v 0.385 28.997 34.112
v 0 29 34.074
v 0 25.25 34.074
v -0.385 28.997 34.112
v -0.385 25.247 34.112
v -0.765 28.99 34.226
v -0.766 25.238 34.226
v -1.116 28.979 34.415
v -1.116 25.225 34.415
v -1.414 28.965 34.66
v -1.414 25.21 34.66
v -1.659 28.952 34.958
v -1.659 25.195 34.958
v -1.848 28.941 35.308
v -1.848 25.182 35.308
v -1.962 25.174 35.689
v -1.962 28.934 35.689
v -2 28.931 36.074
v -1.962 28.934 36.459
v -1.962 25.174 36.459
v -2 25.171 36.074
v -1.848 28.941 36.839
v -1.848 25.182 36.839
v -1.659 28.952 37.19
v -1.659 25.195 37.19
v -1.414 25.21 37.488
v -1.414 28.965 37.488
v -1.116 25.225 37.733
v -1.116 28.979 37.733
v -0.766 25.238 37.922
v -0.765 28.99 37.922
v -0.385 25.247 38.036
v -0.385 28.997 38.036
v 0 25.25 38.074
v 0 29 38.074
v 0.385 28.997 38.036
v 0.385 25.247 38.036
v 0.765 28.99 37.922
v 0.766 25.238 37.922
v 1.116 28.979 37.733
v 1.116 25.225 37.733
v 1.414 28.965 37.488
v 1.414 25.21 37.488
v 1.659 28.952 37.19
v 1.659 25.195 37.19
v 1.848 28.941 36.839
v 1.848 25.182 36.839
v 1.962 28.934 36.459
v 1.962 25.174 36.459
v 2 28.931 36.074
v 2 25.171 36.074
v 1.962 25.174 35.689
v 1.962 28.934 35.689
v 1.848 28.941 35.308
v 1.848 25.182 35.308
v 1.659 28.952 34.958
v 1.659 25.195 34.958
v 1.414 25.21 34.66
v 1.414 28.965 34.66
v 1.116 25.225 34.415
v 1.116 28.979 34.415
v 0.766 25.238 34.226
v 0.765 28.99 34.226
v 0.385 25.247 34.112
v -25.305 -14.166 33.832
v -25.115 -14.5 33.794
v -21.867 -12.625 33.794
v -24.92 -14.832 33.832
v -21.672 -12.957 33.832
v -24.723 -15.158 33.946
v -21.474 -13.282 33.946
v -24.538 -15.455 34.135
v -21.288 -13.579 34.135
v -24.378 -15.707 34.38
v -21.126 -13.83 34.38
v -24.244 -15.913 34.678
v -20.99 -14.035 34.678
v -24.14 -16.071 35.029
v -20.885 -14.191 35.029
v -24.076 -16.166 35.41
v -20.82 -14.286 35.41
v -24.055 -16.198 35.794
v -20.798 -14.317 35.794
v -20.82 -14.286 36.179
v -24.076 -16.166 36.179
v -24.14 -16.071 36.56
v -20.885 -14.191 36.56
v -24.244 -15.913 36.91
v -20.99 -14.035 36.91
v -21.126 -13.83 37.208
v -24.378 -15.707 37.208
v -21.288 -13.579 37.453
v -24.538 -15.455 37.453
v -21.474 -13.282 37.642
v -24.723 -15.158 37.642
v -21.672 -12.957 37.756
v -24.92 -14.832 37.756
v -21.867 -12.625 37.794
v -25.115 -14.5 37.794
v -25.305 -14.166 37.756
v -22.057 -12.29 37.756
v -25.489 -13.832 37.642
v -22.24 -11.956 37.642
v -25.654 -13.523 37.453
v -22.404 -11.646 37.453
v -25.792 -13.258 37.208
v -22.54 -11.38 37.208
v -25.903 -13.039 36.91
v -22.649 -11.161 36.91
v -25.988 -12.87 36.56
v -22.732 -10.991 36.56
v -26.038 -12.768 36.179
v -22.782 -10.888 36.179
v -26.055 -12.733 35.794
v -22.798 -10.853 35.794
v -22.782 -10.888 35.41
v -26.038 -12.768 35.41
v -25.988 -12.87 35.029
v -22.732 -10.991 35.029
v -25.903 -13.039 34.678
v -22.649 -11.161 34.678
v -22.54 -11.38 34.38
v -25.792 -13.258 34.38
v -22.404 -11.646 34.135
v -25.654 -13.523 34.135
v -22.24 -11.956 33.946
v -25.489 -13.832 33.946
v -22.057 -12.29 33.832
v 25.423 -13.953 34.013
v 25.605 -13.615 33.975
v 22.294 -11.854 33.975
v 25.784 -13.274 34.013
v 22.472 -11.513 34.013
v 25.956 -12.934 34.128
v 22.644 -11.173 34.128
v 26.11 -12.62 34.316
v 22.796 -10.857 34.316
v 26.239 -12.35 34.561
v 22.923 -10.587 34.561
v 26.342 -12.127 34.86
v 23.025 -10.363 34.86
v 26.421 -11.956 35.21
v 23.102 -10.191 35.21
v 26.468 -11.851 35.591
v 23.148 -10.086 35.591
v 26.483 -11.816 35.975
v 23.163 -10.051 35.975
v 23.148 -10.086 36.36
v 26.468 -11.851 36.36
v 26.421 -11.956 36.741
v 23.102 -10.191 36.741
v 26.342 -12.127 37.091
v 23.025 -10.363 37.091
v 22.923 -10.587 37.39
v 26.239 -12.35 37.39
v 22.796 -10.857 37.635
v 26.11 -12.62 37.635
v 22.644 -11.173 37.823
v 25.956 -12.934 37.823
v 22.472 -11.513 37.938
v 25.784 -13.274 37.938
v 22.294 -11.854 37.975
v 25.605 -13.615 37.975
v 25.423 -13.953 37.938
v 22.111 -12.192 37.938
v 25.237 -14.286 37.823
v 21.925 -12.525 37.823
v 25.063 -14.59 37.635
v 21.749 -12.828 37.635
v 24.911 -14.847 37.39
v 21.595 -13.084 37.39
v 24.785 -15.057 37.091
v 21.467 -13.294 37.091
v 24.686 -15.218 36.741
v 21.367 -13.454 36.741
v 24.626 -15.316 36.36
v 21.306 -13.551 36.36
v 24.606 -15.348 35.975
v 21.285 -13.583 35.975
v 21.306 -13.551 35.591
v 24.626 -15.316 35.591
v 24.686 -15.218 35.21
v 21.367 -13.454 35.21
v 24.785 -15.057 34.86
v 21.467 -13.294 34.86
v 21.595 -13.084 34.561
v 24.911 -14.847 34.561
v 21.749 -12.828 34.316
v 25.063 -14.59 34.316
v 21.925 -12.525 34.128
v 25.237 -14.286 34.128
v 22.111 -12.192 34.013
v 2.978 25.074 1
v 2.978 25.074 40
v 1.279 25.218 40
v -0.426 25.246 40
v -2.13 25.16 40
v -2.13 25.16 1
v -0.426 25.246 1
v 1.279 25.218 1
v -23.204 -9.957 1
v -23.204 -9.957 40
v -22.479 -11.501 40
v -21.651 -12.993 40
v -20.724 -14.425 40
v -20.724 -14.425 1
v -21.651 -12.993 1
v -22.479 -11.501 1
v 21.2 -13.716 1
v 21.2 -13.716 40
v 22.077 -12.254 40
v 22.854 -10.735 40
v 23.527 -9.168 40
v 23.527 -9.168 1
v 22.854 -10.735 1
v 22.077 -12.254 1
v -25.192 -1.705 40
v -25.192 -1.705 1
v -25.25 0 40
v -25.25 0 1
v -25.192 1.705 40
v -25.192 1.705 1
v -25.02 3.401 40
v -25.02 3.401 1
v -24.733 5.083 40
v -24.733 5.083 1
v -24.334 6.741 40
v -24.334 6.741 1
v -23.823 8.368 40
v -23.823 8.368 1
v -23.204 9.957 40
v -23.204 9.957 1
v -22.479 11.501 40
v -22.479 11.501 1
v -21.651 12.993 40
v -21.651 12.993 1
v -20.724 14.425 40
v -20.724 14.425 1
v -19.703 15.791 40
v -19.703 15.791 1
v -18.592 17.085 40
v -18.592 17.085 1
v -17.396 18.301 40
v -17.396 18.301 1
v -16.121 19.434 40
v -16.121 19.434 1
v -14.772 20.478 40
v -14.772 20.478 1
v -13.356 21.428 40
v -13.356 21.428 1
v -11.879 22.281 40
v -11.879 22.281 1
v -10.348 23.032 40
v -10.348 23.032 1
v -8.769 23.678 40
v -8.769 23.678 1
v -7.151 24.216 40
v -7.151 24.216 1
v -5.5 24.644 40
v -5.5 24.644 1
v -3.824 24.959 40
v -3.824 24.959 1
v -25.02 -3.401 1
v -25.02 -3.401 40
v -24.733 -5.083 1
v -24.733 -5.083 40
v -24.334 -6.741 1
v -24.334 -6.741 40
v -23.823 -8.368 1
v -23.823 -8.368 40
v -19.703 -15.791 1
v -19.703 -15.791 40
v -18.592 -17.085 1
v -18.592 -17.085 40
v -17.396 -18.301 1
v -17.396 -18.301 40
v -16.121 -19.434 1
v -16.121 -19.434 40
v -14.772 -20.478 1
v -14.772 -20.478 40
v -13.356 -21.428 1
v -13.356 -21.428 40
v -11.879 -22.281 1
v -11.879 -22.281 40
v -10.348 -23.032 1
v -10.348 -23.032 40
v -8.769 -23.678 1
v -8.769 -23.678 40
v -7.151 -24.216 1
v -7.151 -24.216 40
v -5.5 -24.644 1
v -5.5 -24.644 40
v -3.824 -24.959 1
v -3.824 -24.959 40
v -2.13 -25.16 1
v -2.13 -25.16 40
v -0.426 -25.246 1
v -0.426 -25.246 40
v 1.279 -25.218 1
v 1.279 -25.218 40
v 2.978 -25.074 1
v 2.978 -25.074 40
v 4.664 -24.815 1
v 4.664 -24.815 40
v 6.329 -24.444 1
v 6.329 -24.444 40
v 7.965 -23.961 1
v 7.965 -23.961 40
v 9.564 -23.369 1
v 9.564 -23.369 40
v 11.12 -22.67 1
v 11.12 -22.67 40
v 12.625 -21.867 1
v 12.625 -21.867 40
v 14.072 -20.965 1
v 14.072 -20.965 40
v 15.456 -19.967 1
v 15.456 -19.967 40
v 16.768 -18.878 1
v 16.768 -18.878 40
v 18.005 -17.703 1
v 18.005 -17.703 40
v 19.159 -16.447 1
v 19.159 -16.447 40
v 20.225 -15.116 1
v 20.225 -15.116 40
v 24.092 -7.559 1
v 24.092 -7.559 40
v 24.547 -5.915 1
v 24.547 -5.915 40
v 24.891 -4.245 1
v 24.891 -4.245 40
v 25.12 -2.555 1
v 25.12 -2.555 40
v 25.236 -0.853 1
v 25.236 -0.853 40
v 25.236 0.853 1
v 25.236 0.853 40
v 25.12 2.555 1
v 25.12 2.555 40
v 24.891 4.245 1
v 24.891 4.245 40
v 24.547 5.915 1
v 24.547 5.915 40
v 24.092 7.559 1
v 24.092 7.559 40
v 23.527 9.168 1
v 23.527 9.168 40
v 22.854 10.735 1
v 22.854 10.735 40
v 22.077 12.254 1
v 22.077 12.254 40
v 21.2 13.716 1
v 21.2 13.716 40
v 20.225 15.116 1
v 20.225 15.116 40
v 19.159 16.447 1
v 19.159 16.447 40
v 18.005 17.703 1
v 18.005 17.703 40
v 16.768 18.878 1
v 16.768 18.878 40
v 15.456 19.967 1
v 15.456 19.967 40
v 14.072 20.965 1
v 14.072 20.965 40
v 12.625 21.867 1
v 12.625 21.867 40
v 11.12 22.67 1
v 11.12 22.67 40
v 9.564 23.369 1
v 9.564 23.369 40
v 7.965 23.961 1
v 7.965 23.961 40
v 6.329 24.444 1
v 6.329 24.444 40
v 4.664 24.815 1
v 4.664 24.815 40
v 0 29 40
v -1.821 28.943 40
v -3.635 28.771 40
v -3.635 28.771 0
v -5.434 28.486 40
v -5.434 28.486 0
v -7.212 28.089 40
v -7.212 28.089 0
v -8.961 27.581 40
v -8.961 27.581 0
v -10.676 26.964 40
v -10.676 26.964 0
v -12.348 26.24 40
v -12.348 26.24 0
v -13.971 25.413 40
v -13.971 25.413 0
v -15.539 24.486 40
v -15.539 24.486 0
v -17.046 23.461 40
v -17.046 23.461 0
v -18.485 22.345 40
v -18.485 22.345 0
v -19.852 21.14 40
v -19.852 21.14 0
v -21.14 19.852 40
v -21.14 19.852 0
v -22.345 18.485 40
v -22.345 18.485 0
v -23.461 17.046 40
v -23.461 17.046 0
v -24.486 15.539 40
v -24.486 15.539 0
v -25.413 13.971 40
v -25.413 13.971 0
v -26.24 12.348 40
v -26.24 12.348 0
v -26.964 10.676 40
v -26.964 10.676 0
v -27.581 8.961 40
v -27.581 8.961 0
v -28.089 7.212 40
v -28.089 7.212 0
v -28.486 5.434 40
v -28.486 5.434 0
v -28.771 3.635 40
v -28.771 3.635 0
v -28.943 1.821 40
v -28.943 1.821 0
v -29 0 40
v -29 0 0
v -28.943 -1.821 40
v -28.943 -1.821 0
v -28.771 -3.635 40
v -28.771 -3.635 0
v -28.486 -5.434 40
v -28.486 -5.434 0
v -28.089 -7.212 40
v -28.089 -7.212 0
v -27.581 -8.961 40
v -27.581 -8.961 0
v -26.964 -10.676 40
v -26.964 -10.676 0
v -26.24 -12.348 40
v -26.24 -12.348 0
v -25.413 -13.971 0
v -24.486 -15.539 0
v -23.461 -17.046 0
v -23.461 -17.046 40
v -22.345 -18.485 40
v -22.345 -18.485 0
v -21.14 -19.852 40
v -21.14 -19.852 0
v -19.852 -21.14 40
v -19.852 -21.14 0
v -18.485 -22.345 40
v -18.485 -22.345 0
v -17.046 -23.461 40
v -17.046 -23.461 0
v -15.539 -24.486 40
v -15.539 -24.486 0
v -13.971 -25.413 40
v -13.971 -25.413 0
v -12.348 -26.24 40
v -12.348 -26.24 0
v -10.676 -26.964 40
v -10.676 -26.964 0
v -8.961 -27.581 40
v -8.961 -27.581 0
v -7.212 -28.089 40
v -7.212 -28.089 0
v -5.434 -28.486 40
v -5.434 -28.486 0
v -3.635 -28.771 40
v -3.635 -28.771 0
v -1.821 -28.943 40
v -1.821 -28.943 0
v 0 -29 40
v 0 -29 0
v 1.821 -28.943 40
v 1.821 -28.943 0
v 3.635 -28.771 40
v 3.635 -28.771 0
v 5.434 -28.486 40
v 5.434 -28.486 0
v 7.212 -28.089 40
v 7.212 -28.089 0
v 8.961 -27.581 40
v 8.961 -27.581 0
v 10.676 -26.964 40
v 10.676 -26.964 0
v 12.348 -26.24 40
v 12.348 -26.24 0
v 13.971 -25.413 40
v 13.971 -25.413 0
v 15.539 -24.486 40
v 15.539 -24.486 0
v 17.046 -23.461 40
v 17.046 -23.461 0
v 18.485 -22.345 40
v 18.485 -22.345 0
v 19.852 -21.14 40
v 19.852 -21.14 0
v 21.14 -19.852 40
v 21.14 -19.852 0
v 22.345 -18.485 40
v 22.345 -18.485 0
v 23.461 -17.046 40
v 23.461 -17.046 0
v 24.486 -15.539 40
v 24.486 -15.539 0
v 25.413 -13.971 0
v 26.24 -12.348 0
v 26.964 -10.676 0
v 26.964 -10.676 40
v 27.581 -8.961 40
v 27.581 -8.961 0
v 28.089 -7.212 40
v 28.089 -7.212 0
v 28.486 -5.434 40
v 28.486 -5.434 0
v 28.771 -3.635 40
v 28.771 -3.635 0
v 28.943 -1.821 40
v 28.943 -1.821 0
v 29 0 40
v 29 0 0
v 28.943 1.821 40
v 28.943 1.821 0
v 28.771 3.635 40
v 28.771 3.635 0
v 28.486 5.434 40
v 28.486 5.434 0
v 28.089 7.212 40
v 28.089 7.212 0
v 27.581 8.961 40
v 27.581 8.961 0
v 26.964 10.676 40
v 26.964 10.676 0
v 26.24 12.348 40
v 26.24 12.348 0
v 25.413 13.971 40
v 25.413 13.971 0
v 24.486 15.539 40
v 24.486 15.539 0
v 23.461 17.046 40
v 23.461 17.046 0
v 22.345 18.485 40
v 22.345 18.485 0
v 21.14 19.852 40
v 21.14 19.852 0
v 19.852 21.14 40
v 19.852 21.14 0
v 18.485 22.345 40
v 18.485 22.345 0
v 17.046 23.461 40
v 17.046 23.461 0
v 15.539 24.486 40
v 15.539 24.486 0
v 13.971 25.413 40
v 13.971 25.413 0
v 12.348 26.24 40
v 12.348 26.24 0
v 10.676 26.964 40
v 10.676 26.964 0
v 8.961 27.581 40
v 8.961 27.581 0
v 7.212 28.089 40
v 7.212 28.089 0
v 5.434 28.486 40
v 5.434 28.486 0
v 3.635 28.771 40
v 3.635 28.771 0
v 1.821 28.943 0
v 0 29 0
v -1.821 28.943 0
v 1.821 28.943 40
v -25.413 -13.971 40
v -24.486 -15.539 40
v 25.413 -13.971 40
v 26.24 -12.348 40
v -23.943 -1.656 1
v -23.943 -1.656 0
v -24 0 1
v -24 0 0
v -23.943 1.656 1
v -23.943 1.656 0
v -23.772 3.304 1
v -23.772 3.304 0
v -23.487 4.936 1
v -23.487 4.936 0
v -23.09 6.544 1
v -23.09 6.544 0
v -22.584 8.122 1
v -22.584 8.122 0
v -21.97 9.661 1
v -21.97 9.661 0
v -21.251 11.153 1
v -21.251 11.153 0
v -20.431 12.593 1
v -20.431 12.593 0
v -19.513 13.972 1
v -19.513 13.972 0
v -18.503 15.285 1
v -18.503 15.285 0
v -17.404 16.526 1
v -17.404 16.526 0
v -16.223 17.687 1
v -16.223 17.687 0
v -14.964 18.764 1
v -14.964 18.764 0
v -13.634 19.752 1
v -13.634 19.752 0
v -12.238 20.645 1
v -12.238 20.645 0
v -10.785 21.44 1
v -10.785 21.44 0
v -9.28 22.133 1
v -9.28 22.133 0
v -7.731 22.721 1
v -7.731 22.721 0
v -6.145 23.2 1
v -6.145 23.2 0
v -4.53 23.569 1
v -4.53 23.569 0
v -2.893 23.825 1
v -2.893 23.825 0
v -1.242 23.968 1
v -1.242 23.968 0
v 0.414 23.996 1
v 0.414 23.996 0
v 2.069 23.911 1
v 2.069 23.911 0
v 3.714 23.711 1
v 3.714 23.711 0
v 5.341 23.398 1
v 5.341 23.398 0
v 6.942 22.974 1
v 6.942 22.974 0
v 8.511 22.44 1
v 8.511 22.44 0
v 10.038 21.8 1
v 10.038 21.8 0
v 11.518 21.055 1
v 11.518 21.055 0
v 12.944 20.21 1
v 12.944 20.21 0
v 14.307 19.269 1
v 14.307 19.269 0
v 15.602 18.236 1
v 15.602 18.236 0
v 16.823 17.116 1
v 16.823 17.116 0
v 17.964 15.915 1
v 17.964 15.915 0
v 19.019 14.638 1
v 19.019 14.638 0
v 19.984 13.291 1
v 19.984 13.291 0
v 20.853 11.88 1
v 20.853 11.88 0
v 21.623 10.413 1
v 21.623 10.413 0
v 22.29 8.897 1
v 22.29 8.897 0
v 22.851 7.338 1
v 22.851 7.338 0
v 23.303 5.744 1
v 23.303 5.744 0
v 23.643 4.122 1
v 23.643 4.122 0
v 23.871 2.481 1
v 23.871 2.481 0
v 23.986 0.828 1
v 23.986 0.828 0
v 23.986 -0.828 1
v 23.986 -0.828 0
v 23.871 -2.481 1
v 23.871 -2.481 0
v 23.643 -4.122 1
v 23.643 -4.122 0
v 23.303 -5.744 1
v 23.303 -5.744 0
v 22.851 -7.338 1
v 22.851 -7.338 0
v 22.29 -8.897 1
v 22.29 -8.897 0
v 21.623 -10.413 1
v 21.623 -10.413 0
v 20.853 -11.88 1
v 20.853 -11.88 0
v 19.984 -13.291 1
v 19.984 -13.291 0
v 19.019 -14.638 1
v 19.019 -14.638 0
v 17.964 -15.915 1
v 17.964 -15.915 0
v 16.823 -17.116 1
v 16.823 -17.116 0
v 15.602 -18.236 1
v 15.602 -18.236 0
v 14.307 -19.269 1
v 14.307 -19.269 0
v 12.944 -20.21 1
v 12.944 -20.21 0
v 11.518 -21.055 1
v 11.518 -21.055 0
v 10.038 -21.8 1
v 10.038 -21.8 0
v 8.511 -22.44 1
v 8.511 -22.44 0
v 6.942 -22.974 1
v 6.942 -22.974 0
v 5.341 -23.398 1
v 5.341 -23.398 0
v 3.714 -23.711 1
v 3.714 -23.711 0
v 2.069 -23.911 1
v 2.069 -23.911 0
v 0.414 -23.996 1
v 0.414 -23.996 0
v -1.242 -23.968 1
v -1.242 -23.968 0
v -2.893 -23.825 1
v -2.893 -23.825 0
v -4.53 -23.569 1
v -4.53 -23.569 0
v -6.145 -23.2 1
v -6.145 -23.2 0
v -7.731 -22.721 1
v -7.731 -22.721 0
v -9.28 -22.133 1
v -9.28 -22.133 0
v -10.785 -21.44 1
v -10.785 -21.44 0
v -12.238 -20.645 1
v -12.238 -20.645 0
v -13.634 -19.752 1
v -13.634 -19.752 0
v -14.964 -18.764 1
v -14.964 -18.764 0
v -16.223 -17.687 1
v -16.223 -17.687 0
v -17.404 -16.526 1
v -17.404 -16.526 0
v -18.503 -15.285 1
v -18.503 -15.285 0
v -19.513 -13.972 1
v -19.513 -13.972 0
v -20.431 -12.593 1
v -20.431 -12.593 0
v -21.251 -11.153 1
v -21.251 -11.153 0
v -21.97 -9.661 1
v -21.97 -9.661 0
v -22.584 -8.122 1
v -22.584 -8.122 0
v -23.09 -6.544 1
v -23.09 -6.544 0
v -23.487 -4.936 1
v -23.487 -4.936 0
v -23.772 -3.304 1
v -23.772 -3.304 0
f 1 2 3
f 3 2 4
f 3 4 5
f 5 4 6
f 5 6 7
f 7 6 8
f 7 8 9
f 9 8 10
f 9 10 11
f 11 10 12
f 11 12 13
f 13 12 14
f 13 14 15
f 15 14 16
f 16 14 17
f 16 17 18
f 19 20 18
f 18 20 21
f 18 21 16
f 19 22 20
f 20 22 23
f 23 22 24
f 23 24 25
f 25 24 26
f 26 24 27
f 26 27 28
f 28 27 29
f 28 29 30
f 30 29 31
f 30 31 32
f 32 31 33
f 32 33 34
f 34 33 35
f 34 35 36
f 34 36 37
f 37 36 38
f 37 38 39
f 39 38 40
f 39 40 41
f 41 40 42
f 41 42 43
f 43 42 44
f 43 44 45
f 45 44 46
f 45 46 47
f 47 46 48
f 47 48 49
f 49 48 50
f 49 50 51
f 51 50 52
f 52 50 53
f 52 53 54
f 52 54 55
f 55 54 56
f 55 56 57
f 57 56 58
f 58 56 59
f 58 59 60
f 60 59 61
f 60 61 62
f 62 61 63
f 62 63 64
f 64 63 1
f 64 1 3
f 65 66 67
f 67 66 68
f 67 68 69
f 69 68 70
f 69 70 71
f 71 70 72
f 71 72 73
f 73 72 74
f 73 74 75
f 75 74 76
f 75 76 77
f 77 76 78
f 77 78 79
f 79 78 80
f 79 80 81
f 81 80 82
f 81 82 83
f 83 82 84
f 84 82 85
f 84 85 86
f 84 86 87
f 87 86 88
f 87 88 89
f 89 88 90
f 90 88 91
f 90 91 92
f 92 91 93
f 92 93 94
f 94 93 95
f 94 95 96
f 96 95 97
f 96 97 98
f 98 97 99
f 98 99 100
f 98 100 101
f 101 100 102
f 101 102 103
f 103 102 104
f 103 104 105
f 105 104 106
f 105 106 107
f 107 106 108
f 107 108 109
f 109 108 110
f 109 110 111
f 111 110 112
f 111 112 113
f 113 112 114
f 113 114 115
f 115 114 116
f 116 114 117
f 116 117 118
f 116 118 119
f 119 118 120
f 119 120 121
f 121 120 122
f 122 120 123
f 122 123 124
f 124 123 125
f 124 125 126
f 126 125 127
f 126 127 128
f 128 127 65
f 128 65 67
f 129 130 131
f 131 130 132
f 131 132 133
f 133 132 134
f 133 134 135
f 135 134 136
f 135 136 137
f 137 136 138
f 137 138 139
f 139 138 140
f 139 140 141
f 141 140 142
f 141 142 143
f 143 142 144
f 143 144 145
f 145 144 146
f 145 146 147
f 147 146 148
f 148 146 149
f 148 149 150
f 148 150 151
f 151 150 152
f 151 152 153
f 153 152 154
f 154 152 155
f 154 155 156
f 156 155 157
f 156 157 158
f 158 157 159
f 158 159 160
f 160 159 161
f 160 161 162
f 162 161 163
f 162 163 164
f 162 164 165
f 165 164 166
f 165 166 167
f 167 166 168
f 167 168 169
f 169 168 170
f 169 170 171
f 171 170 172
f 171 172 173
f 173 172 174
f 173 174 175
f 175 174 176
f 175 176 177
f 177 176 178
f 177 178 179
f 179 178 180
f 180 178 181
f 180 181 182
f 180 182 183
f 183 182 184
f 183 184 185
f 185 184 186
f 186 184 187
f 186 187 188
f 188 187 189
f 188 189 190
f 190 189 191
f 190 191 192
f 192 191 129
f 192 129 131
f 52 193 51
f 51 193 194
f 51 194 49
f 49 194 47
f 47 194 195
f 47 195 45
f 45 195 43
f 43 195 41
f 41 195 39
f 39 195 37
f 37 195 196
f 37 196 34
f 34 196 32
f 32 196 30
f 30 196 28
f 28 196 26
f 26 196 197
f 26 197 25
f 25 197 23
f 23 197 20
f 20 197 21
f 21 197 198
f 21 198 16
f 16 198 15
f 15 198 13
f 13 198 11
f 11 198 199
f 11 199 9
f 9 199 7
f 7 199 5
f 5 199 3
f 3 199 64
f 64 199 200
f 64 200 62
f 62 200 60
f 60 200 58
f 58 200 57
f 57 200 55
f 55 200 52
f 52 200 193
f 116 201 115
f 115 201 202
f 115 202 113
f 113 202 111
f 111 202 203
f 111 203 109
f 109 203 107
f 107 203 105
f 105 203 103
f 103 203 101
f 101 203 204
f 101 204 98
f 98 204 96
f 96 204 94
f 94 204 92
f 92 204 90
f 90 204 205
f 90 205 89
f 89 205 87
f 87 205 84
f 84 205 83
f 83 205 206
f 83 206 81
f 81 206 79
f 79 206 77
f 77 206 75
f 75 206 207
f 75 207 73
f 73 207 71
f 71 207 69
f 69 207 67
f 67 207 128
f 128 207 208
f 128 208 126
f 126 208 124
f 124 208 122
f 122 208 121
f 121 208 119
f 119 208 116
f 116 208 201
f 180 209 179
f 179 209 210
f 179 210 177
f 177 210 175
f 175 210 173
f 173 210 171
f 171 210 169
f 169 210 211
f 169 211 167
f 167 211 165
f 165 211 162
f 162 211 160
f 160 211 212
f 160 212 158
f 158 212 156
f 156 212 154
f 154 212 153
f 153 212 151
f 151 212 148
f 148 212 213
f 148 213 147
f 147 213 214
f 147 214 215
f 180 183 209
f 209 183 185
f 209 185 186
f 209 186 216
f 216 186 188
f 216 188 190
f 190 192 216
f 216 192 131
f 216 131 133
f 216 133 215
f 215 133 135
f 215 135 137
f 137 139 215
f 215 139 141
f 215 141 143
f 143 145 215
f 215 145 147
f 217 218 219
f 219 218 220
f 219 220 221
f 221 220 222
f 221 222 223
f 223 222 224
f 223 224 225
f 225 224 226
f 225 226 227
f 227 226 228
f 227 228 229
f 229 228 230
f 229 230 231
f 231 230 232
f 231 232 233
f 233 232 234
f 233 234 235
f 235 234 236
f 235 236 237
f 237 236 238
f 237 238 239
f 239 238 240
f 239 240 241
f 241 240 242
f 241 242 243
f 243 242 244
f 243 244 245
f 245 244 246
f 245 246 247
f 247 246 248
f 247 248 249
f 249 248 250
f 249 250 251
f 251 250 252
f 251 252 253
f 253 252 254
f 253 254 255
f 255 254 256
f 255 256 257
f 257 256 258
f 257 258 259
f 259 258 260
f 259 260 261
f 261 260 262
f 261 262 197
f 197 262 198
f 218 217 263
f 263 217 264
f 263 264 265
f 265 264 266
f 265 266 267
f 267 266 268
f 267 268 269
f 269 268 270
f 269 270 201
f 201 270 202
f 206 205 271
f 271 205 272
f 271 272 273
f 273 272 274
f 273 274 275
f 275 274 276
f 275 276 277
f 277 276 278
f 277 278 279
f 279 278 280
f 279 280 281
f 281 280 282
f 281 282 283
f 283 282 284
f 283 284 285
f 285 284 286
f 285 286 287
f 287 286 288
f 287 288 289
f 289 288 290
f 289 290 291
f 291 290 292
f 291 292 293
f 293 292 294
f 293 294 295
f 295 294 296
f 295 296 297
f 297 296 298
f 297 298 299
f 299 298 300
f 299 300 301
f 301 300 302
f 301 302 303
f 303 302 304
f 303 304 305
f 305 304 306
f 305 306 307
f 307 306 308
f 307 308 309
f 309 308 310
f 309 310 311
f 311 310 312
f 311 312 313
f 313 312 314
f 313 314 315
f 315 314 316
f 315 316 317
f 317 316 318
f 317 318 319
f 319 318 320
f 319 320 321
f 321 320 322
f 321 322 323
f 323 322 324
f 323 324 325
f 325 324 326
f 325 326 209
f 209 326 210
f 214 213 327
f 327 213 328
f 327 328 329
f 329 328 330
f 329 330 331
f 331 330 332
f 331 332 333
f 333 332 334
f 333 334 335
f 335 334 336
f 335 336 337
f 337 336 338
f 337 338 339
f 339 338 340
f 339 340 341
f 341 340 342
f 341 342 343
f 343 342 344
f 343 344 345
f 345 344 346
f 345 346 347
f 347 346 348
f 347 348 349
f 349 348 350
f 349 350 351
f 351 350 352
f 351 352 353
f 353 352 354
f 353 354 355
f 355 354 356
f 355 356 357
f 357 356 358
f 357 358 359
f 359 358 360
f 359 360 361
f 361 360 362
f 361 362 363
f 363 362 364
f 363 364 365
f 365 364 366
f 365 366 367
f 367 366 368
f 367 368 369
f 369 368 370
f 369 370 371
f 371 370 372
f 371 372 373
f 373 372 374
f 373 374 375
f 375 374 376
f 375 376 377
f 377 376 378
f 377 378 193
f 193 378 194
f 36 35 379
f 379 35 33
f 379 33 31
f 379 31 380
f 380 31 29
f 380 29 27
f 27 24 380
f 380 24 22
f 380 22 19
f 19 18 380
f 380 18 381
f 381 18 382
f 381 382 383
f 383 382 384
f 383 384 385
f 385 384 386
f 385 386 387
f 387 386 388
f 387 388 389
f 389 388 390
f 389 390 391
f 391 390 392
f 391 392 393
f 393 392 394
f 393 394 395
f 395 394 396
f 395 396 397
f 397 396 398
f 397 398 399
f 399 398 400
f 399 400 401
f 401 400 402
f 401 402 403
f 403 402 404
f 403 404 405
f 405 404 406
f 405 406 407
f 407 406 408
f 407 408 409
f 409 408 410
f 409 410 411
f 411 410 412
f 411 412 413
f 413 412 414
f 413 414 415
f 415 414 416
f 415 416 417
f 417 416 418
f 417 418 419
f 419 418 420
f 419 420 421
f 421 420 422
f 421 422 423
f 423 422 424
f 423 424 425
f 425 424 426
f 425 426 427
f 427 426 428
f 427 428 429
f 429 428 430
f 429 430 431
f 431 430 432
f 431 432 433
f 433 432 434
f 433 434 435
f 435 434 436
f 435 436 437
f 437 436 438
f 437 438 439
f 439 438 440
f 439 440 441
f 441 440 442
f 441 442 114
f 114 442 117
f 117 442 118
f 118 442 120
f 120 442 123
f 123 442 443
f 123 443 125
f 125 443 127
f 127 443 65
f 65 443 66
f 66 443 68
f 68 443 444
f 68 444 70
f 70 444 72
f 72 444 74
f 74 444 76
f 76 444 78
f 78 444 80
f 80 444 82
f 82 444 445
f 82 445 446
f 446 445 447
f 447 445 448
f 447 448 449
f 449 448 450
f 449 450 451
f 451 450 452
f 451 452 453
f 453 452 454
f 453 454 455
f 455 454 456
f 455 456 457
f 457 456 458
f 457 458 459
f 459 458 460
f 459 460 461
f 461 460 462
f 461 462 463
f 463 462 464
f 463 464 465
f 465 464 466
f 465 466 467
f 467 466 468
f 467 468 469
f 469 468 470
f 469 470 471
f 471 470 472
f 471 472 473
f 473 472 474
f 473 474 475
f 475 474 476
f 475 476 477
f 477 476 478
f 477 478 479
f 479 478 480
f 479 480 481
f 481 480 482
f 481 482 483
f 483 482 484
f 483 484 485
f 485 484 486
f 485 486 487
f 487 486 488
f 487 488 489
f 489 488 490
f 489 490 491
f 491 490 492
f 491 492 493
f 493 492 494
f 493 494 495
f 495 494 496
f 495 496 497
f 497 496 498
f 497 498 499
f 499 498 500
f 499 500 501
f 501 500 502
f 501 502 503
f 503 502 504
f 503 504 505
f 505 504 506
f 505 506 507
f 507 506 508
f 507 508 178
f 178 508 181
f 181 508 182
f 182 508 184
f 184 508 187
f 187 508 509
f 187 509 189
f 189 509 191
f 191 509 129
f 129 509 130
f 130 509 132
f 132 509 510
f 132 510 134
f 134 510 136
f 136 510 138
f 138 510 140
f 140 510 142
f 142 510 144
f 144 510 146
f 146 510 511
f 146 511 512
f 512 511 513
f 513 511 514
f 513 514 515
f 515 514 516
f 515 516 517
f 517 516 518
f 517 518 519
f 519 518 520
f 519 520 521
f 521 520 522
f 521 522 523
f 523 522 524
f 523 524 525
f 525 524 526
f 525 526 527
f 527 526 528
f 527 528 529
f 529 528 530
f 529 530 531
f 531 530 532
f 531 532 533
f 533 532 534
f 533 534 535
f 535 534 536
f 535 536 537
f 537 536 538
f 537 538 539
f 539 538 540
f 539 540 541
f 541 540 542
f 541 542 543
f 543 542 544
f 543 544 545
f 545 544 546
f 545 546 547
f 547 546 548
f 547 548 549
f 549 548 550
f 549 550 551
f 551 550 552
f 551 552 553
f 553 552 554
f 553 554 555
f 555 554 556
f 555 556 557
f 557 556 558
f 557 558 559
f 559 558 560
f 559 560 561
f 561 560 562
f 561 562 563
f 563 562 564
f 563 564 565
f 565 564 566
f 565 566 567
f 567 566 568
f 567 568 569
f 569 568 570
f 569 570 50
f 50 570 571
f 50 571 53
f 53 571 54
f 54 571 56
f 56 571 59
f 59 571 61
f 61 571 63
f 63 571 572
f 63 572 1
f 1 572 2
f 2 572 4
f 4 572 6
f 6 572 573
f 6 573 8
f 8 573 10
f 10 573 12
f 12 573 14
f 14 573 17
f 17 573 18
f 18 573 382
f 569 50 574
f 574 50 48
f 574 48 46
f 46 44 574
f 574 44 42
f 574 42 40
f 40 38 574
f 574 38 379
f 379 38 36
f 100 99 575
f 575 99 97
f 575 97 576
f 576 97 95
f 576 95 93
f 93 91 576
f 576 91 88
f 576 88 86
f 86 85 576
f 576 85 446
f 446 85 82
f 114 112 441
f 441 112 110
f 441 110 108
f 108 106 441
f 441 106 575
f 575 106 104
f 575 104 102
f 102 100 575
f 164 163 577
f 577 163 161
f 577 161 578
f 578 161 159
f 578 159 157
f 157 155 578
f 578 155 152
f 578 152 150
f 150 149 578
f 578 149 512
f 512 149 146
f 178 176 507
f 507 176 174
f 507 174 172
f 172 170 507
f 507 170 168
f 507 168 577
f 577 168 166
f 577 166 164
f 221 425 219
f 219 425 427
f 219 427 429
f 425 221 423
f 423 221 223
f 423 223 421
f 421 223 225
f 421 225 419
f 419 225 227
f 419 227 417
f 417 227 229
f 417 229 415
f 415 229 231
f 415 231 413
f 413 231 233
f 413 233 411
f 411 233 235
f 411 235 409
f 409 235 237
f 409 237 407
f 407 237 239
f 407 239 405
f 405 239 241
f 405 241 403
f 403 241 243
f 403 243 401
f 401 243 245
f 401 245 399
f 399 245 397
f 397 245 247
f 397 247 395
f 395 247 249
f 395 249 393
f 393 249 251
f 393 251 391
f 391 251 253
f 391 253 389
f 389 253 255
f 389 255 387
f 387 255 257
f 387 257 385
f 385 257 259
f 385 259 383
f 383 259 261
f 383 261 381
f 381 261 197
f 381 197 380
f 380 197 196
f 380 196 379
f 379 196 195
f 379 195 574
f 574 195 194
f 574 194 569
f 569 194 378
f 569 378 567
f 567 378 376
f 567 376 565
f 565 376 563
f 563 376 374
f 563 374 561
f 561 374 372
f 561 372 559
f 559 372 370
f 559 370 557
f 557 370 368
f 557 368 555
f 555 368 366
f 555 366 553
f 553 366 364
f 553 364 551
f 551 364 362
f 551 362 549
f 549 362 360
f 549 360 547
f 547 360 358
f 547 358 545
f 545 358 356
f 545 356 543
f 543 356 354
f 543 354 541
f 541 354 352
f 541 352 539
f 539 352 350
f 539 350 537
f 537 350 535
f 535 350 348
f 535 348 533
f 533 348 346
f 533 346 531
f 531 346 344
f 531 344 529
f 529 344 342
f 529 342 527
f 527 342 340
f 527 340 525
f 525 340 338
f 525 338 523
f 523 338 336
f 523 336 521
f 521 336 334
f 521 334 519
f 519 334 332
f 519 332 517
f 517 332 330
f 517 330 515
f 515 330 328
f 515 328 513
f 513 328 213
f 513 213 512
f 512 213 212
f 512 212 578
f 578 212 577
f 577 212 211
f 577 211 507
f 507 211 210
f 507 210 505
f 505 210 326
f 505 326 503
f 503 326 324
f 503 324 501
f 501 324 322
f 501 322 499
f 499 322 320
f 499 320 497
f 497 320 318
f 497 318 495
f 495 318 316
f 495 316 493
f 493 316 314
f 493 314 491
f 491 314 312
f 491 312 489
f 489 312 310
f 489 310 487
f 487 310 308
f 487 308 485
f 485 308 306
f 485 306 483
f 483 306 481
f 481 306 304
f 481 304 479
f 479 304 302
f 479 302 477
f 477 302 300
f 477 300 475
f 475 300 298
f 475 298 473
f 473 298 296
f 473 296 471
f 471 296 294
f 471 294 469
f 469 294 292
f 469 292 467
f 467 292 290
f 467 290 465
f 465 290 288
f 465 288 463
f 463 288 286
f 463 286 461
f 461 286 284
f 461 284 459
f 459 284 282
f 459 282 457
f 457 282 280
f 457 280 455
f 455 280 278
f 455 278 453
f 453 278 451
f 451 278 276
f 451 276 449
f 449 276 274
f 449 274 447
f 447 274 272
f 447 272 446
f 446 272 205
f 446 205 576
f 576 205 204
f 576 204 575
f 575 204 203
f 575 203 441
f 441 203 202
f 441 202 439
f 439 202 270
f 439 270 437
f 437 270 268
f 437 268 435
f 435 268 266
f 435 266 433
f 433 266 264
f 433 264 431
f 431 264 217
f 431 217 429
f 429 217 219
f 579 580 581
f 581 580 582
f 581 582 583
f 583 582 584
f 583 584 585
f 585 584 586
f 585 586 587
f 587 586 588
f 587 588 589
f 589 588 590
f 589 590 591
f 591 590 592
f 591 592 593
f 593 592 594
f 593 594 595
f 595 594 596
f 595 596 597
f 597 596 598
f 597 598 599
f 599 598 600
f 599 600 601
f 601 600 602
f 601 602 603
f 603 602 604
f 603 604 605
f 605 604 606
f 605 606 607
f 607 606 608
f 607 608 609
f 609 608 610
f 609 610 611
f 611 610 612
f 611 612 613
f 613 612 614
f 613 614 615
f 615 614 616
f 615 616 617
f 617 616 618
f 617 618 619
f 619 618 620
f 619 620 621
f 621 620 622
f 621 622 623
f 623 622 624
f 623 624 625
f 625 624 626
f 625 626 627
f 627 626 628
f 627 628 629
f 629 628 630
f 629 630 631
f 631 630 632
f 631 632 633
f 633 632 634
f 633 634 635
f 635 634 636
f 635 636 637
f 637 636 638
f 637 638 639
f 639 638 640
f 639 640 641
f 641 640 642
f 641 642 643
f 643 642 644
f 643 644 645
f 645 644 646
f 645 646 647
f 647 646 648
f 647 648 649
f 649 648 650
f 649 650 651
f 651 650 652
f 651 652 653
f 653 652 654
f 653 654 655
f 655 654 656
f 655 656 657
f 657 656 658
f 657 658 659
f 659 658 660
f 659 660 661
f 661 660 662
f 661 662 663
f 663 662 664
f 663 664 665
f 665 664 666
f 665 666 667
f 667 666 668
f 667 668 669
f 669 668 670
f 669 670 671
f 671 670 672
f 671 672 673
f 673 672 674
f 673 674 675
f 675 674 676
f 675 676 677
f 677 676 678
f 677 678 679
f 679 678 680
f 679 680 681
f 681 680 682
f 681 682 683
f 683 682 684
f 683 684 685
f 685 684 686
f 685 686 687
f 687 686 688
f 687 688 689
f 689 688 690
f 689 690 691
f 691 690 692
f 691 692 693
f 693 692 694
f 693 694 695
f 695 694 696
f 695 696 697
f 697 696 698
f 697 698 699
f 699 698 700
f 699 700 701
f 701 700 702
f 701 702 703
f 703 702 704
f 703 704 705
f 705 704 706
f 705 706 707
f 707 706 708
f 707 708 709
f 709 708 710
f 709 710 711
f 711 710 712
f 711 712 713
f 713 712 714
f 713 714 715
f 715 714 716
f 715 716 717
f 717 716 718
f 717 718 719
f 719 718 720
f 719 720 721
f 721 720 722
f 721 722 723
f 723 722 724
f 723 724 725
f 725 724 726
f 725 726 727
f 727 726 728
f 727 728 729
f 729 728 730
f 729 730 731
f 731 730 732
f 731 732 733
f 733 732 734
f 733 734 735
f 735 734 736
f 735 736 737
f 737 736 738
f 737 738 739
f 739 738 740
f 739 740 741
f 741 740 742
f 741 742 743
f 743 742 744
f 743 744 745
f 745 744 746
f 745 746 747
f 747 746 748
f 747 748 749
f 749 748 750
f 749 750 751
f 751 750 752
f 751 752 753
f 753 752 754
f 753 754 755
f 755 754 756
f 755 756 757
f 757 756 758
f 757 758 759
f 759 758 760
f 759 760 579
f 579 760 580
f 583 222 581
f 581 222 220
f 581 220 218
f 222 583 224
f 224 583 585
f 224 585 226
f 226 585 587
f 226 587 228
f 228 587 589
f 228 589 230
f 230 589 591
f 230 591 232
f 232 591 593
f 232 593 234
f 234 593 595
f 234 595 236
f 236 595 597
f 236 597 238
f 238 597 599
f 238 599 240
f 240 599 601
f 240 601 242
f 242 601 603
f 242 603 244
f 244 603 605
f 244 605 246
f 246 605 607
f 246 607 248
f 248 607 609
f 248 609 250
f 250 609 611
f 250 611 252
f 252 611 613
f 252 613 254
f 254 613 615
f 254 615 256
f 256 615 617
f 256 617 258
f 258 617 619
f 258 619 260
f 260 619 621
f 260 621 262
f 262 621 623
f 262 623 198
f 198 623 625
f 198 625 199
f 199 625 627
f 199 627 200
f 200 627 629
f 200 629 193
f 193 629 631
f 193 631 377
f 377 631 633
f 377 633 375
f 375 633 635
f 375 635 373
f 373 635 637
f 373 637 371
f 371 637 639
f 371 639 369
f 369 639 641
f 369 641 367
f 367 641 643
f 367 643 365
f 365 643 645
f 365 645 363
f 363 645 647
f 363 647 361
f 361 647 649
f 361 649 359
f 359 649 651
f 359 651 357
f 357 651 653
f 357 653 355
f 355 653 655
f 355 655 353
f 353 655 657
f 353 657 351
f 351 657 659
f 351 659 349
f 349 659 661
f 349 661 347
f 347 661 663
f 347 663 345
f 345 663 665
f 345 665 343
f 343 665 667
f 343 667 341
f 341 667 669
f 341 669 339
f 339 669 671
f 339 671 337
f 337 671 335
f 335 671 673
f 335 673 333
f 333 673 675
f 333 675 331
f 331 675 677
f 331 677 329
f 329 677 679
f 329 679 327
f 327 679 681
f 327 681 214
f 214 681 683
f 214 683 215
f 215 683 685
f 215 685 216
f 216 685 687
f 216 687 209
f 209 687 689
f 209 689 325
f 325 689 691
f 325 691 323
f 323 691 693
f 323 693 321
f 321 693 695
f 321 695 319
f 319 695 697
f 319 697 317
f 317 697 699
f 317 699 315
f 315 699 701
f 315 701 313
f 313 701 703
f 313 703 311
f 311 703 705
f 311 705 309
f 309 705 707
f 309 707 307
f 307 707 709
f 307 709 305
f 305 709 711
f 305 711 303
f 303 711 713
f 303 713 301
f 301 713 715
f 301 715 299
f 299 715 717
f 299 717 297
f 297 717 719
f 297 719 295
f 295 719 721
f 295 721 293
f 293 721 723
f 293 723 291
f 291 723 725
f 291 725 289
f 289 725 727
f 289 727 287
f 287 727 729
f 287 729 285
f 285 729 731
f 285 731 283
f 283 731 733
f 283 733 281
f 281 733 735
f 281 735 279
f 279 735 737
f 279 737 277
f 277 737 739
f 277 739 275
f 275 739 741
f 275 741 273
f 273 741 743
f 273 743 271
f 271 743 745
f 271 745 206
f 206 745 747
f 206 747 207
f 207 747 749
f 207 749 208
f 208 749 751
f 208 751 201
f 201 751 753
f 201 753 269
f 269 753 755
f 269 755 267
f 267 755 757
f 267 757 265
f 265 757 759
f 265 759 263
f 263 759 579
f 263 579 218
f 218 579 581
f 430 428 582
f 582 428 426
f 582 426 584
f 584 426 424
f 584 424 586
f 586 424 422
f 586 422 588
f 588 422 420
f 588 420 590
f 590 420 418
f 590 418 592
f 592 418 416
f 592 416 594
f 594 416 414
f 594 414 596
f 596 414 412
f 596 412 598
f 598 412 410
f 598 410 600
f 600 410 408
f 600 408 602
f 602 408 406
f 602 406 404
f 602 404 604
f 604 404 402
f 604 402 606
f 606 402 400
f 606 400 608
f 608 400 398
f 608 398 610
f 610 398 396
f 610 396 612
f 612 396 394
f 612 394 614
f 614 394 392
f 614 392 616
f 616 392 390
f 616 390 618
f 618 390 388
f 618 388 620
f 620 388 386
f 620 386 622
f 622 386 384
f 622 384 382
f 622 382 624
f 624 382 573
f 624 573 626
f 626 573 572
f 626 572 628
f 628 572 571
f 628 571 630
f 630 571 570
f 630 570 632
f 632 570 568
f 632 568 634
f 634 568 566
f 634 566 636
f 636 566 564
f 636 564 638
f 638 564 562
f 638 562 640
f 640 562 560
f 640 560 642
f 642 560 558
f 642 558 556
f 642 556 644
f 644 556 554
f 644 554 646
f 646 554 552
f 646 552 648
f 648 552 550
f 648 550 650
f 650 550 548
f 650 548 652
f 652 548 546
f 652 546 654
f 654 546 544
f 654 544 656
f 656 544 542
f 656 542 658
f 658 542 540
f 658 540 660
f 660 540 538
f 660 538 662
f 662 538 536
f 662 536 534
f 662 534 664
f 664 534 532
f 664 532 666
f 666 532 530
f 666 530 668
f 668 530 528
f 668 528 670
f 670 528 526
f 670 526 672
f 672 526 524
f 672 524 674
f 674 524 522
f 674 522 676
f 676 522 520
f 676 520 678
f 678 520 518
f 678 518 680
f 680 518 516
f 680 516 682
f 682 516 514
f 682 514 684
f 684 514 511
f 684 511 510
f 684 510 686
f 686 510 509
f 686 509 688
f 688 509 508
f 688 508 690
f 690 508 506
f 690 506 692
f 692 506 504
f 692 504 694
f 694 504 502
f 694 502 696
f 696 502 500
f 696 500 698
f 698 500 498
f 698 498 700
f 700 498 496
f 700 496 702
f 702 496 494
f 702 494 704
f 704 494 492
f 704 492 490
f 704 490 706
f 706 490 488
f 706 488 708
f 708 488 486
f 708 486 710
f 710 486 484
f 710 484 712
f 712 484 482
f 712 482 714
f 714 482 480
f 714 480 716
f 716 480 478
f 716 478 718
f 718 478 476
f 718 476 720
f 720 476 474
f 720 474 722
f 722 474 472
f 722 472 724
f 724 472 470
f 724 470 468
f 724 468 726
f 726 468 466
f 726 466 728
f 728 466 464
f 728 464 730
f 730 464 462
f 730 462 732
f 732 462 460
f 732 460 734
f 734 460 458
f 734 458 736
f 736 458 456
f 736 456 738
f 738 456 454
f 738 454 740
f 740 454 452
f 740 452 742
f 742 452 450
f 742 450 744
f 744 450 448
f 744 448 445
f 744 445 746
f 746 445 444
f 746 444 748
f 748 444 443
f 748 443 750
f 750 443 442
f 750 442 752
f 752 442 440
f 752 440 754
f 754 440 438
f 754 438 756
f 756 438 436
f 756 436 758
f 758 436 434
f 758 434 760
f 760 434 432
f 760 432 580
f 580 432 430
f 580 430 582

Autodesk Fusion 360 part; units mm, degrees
sketch "Adapter Sketch" plane through (0, 0, 0) normal (0, 0, 1) x (1, 0, 0)
  circle A0 centre (0, 0) radius 25.25
  circle A1 centre (0, 0) radius 29
  circle A2 centre (0, 0) radius 24
  line L0 (25.0221, -14.4721) -> (0.0222, 28.9059)
  line L1 (0.0222, 28.9059) -> (-25.0443, -14.4337)
  line L2 (-25.0443, -14.4337) -> (25.0221, -14.4721)
  dimension "d1" = 50.5
  dimension "d2" = 58
  dimension "d3" = 48
extrude "Extrude1" add sketch "Adapter Sketch" along normal blind 1 contours A0 A2 L0 | A0 A2 L0 L1 | A0 A2 L0 L2 | A0 A2 L1 | A0 A2 L2 | A0 A2 L1 L2
extrude "Extrude2" add sketch "Adapter Sketch" along normal blind 40 contours A0 L0 L1 | A0 L0 L2 | A0 L1 L2 | A1
hole "Hole1" at (25.6055, -13.6147, 35.9754) direction (-0.8829, 0.4695, 0) diameter 4 depth 5 tip angle 180
hole "Hole2" at (-25.1147, -14.5, 35.7941) direction (0.866, 0.5, 0) diameter 4 depth 5 tip angle 180
hole "Hole3" at (0, 29, 36.074) direction (0, -1, 0) diameter 4 depth 5 tip angle 180
